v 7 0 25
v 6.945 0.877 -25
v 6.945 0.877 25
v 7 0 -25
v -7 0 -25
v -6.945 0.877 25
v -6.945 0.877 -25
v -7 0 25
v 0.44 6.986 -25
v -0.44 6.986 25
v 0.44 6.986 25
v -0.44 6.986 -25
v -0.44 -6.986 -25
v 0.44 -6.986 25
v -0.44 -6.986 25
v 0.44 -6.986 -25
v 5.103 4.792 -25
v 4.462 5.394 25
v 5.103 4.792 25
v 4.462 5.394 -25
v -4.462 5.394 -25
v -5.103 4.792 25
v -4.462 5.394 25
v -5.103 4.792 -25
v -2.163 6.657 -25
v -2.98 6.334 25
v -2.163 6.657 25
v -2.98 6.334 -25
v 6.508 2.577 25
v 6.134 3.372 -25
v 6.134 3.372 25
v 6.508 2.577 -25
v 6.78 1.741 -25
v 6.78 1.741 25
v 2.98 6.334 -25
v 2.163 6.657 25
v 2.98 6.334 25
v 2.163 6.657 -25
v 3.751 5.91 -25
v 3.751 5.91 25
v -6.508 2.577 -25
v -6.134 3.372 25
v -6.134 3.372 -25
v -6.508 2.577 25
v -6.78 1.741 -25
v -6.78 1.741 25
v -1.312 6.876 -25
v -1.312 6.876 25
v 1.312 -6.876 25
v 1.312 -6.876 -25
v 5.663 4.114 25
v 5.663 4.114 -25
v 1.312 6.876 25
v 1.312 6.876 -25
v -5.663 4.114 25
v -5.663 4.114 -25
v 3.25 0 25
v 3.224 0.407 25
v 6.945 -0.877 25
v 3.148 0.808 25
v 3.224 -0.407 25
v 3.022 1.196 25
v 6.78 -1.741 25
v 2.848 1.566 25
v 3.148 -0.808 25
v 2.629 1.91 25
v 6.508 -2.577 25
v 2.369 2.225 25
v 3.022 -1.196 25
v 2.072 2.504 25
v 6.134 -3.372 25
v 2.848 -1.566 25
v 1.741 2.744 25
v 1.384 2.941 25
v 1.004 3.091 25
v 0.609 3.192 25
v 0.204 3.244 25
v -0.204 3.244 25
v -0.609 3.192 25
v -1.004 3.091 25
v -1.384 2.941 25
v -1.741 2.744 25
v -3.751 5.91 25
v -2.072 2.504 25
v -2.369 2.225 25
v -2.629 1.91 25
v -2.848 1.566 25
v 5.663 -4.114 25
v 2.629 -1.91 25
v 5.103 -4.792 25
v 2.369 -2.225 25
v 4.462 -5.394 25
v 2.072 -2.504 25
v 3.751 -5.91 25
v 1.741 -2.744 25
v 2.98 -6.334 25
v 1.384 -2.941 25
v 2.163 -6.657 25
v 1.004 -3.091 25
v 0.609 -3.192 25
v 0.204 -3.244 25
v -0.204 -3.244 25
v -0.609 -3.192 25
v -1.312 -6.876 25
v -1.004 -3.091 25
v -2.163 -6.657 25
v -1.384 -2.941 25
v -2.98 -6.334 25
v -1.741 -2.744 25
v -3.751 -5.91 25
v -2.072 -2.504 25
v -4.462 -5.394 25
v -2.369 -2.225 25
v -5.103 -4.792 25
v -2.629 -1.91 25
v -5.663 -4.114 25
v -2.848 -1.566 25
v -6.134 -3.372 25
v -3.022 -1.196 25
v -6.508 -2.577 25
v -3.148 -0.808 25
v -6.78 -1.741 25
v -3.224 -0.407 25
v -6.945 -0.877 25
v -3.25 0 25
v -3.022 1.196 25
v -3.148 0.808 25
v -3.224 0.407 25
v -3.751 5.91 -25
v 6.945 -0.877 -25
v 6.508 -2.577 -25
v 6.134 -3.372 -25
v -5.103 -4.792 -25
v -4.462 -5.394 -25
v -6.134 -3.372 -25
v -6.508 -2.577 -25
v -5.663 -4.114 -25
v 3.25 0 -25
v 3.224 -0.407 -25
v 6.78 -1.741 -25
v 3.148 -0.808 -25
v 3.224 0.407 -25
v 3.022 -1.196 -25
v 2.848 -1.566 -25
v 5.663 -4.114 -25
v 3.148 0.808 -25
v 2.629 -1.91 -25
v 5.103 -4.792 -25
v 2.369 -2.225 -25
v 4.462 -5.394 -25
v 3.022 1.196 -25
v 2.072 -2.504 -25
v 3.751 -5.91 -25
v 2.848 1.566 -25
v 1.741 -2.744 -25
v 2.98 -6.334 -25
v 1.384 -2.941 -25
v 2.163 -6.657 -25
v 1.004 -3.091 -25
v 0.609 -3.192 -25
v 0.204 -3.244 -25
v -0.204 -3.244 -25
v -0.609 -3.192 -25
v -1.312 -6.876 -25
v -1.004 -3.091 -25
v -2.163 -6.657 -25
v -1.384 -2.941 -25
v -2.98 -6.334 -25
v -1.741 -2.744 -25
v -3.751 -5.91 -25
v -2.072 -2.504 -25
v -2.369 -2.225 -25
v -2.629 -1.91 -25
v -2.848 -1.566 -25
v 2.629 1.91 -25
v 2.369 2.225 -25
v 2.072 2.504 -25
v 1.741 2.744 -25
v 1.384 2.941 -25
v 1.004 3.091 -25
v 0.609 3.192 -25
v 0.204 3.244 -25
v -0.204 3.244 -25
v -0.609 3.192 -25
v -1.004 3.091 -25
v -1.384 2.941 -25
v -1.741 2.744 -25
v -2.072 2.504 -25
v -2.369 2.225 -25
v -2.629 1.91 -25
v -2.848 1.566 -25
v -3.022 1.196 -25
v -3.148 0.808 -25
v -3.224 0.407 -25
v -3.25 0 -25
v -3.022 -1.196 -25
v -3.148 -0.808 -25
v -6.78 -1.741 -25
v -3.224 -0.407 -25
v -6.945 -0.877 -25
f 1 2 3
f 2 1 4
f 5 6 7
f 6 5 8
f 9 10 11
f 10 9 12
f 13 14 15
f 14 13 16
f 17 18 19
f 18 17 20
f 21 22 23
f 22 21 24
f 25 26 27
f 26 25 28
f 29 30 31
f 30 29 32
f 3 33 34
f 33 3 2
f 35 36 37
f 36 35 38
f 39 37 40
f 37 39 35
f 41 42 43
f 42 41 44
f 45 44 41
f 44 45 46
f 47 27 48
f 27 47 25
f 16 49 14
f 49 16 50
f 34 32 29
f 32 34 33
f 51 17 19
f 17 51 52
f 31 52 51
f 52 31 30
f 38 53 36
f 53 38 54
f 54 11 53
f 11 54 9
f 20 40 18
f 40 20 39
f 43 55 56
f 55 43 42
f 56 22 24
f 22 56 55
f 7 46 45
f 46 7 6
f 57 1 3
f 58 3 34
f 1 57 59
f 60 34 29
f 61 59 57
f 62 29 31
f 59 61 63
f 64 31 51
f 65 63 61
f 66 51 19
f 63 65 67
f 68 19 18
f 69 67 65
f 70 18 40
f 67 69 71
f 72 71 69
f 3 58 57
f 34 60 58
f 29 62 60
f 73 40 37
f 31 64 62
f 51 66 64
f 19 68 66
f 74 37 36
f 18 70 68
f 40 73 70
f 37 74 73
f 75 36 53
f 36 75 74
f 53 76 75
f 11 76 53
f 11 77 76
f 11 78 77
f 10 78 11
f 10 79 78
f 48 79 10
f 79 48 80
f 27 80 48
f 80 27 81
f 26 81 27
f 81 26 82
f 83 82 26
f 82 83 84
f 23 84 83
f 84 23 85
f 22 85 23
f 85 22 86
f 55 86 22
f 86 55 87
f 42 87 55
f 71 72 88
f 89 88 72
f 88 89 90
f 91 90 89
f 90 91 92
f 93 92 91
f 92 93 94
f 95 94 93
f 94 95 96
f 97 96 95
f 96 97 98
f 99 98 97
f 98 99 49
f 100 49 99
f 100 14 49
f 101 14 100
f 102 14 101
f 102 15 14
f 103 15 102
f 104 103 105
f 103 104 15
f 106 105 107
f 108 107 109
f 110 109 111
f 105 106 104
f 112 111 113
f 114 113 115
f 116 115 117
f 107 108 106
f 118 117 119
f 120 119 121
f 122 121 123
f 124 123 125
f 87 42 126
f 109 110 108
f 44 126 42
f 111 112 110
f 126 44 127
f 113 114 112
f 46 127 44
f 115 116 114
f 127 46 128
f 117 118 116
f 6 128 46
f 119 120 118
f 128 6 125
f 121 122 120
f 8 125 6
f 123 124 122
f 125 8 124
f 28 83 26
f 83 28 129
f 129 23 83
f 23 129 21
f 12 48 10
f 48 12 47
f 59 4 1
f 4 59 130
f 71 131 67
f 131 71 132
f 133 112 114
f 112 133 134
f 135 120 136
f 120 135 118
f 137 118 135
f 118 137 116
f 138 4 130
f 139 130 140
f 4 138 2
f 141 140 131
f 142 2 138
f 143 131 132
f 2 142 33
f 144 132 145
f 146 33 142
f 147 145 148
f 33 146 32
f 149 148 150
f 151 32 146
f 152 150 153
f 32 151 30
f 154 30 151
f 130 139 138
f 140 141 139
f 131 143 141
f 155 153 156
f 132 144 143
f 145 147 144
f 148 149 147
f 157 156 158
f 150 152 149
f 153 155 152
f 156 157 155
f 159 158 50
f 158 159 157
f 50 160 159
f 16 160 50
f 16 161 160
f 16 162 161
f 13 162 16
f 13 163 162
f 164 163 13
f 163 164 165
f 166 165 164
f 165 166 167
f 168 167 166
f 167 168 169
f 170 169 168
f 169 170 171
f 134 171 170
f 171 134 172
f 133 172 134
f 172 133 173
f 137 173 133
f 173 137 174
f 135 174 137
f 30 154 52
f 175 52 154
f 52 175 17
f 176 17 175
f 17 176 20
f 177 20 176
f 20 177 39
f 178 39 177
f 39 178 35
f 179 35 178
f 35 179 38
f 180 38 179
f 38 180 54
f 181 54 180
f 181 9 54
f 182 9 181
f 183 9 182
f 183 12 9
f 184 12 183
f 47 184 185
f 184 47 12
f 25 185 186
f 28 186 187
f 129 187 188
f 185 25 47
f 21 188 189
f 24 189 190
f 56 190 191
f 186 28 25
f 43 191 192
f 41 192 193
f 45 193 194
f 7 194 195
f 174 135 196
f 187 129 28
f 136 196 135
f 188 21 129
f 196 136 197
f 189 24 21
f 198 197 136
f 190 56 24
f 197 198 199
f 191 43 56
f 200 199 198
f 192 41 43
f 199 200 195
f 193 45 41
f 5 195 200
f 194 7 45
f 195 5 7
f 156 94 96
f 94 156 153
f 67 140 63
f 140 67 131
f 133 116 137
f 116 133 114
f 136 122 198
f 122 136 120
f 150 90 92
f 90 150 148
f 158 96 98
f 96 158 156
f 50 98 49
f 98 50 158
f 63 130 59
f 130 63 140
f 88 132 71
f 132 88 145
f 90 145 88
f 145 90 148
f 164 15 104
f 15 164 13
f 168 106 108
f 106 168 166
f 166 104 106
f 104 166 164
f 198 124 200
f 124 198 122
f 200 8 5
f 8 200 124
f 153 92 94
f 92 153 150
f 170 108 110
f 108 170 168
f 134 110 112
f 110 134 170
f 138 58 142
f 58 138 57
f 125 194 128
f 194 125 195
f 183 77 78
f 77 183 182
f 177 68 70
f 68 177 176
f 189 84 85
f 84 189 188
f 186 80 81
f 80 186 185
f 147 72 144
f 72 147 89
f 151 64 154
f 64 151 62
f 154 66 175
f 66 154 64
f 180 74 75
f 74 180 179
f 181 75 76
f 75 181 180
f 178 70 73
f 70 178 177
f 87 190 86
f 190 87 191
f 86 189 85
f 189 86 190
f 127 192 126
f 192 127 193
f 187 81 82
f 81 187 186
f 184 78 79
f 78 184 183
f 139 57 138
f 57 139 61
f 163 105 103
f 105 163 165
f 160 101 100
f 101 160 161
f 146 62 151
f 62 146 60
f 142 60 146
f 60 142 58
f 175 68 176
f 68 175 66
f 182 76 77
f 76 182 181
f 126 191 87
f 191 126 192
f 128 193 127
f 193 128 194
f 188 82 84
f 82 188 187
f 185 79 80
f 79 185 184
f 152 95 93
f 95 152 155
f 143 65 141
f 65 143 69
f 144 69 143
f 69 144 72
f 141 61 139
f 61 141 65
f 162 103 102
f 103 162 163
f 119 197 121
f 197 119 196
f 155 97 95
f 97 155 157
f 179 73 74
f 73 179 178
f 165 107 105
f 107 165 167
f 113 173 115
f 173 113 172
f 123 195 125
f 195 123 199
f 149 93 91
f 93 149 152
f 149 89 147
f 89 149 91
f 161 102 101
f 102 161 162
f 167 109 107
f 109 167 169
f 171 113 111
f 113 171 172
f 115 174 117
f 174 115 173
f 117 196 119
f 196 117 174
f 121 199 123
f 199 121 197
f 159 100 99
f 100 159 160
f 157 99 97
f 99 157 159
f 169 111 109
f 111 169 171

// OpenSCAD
$fn = 50;


difference() {
	union() {
		translate(v = [0, 0, -25.0000000000]) {
			cylinder(h = 50, r = 7.0000000000);
		}
	}
	union() {
		translate(v = [0, 0, -100.0000000000]) {
			cylinder(h = 200, r = 3.2500000000);
		}
	}
}
